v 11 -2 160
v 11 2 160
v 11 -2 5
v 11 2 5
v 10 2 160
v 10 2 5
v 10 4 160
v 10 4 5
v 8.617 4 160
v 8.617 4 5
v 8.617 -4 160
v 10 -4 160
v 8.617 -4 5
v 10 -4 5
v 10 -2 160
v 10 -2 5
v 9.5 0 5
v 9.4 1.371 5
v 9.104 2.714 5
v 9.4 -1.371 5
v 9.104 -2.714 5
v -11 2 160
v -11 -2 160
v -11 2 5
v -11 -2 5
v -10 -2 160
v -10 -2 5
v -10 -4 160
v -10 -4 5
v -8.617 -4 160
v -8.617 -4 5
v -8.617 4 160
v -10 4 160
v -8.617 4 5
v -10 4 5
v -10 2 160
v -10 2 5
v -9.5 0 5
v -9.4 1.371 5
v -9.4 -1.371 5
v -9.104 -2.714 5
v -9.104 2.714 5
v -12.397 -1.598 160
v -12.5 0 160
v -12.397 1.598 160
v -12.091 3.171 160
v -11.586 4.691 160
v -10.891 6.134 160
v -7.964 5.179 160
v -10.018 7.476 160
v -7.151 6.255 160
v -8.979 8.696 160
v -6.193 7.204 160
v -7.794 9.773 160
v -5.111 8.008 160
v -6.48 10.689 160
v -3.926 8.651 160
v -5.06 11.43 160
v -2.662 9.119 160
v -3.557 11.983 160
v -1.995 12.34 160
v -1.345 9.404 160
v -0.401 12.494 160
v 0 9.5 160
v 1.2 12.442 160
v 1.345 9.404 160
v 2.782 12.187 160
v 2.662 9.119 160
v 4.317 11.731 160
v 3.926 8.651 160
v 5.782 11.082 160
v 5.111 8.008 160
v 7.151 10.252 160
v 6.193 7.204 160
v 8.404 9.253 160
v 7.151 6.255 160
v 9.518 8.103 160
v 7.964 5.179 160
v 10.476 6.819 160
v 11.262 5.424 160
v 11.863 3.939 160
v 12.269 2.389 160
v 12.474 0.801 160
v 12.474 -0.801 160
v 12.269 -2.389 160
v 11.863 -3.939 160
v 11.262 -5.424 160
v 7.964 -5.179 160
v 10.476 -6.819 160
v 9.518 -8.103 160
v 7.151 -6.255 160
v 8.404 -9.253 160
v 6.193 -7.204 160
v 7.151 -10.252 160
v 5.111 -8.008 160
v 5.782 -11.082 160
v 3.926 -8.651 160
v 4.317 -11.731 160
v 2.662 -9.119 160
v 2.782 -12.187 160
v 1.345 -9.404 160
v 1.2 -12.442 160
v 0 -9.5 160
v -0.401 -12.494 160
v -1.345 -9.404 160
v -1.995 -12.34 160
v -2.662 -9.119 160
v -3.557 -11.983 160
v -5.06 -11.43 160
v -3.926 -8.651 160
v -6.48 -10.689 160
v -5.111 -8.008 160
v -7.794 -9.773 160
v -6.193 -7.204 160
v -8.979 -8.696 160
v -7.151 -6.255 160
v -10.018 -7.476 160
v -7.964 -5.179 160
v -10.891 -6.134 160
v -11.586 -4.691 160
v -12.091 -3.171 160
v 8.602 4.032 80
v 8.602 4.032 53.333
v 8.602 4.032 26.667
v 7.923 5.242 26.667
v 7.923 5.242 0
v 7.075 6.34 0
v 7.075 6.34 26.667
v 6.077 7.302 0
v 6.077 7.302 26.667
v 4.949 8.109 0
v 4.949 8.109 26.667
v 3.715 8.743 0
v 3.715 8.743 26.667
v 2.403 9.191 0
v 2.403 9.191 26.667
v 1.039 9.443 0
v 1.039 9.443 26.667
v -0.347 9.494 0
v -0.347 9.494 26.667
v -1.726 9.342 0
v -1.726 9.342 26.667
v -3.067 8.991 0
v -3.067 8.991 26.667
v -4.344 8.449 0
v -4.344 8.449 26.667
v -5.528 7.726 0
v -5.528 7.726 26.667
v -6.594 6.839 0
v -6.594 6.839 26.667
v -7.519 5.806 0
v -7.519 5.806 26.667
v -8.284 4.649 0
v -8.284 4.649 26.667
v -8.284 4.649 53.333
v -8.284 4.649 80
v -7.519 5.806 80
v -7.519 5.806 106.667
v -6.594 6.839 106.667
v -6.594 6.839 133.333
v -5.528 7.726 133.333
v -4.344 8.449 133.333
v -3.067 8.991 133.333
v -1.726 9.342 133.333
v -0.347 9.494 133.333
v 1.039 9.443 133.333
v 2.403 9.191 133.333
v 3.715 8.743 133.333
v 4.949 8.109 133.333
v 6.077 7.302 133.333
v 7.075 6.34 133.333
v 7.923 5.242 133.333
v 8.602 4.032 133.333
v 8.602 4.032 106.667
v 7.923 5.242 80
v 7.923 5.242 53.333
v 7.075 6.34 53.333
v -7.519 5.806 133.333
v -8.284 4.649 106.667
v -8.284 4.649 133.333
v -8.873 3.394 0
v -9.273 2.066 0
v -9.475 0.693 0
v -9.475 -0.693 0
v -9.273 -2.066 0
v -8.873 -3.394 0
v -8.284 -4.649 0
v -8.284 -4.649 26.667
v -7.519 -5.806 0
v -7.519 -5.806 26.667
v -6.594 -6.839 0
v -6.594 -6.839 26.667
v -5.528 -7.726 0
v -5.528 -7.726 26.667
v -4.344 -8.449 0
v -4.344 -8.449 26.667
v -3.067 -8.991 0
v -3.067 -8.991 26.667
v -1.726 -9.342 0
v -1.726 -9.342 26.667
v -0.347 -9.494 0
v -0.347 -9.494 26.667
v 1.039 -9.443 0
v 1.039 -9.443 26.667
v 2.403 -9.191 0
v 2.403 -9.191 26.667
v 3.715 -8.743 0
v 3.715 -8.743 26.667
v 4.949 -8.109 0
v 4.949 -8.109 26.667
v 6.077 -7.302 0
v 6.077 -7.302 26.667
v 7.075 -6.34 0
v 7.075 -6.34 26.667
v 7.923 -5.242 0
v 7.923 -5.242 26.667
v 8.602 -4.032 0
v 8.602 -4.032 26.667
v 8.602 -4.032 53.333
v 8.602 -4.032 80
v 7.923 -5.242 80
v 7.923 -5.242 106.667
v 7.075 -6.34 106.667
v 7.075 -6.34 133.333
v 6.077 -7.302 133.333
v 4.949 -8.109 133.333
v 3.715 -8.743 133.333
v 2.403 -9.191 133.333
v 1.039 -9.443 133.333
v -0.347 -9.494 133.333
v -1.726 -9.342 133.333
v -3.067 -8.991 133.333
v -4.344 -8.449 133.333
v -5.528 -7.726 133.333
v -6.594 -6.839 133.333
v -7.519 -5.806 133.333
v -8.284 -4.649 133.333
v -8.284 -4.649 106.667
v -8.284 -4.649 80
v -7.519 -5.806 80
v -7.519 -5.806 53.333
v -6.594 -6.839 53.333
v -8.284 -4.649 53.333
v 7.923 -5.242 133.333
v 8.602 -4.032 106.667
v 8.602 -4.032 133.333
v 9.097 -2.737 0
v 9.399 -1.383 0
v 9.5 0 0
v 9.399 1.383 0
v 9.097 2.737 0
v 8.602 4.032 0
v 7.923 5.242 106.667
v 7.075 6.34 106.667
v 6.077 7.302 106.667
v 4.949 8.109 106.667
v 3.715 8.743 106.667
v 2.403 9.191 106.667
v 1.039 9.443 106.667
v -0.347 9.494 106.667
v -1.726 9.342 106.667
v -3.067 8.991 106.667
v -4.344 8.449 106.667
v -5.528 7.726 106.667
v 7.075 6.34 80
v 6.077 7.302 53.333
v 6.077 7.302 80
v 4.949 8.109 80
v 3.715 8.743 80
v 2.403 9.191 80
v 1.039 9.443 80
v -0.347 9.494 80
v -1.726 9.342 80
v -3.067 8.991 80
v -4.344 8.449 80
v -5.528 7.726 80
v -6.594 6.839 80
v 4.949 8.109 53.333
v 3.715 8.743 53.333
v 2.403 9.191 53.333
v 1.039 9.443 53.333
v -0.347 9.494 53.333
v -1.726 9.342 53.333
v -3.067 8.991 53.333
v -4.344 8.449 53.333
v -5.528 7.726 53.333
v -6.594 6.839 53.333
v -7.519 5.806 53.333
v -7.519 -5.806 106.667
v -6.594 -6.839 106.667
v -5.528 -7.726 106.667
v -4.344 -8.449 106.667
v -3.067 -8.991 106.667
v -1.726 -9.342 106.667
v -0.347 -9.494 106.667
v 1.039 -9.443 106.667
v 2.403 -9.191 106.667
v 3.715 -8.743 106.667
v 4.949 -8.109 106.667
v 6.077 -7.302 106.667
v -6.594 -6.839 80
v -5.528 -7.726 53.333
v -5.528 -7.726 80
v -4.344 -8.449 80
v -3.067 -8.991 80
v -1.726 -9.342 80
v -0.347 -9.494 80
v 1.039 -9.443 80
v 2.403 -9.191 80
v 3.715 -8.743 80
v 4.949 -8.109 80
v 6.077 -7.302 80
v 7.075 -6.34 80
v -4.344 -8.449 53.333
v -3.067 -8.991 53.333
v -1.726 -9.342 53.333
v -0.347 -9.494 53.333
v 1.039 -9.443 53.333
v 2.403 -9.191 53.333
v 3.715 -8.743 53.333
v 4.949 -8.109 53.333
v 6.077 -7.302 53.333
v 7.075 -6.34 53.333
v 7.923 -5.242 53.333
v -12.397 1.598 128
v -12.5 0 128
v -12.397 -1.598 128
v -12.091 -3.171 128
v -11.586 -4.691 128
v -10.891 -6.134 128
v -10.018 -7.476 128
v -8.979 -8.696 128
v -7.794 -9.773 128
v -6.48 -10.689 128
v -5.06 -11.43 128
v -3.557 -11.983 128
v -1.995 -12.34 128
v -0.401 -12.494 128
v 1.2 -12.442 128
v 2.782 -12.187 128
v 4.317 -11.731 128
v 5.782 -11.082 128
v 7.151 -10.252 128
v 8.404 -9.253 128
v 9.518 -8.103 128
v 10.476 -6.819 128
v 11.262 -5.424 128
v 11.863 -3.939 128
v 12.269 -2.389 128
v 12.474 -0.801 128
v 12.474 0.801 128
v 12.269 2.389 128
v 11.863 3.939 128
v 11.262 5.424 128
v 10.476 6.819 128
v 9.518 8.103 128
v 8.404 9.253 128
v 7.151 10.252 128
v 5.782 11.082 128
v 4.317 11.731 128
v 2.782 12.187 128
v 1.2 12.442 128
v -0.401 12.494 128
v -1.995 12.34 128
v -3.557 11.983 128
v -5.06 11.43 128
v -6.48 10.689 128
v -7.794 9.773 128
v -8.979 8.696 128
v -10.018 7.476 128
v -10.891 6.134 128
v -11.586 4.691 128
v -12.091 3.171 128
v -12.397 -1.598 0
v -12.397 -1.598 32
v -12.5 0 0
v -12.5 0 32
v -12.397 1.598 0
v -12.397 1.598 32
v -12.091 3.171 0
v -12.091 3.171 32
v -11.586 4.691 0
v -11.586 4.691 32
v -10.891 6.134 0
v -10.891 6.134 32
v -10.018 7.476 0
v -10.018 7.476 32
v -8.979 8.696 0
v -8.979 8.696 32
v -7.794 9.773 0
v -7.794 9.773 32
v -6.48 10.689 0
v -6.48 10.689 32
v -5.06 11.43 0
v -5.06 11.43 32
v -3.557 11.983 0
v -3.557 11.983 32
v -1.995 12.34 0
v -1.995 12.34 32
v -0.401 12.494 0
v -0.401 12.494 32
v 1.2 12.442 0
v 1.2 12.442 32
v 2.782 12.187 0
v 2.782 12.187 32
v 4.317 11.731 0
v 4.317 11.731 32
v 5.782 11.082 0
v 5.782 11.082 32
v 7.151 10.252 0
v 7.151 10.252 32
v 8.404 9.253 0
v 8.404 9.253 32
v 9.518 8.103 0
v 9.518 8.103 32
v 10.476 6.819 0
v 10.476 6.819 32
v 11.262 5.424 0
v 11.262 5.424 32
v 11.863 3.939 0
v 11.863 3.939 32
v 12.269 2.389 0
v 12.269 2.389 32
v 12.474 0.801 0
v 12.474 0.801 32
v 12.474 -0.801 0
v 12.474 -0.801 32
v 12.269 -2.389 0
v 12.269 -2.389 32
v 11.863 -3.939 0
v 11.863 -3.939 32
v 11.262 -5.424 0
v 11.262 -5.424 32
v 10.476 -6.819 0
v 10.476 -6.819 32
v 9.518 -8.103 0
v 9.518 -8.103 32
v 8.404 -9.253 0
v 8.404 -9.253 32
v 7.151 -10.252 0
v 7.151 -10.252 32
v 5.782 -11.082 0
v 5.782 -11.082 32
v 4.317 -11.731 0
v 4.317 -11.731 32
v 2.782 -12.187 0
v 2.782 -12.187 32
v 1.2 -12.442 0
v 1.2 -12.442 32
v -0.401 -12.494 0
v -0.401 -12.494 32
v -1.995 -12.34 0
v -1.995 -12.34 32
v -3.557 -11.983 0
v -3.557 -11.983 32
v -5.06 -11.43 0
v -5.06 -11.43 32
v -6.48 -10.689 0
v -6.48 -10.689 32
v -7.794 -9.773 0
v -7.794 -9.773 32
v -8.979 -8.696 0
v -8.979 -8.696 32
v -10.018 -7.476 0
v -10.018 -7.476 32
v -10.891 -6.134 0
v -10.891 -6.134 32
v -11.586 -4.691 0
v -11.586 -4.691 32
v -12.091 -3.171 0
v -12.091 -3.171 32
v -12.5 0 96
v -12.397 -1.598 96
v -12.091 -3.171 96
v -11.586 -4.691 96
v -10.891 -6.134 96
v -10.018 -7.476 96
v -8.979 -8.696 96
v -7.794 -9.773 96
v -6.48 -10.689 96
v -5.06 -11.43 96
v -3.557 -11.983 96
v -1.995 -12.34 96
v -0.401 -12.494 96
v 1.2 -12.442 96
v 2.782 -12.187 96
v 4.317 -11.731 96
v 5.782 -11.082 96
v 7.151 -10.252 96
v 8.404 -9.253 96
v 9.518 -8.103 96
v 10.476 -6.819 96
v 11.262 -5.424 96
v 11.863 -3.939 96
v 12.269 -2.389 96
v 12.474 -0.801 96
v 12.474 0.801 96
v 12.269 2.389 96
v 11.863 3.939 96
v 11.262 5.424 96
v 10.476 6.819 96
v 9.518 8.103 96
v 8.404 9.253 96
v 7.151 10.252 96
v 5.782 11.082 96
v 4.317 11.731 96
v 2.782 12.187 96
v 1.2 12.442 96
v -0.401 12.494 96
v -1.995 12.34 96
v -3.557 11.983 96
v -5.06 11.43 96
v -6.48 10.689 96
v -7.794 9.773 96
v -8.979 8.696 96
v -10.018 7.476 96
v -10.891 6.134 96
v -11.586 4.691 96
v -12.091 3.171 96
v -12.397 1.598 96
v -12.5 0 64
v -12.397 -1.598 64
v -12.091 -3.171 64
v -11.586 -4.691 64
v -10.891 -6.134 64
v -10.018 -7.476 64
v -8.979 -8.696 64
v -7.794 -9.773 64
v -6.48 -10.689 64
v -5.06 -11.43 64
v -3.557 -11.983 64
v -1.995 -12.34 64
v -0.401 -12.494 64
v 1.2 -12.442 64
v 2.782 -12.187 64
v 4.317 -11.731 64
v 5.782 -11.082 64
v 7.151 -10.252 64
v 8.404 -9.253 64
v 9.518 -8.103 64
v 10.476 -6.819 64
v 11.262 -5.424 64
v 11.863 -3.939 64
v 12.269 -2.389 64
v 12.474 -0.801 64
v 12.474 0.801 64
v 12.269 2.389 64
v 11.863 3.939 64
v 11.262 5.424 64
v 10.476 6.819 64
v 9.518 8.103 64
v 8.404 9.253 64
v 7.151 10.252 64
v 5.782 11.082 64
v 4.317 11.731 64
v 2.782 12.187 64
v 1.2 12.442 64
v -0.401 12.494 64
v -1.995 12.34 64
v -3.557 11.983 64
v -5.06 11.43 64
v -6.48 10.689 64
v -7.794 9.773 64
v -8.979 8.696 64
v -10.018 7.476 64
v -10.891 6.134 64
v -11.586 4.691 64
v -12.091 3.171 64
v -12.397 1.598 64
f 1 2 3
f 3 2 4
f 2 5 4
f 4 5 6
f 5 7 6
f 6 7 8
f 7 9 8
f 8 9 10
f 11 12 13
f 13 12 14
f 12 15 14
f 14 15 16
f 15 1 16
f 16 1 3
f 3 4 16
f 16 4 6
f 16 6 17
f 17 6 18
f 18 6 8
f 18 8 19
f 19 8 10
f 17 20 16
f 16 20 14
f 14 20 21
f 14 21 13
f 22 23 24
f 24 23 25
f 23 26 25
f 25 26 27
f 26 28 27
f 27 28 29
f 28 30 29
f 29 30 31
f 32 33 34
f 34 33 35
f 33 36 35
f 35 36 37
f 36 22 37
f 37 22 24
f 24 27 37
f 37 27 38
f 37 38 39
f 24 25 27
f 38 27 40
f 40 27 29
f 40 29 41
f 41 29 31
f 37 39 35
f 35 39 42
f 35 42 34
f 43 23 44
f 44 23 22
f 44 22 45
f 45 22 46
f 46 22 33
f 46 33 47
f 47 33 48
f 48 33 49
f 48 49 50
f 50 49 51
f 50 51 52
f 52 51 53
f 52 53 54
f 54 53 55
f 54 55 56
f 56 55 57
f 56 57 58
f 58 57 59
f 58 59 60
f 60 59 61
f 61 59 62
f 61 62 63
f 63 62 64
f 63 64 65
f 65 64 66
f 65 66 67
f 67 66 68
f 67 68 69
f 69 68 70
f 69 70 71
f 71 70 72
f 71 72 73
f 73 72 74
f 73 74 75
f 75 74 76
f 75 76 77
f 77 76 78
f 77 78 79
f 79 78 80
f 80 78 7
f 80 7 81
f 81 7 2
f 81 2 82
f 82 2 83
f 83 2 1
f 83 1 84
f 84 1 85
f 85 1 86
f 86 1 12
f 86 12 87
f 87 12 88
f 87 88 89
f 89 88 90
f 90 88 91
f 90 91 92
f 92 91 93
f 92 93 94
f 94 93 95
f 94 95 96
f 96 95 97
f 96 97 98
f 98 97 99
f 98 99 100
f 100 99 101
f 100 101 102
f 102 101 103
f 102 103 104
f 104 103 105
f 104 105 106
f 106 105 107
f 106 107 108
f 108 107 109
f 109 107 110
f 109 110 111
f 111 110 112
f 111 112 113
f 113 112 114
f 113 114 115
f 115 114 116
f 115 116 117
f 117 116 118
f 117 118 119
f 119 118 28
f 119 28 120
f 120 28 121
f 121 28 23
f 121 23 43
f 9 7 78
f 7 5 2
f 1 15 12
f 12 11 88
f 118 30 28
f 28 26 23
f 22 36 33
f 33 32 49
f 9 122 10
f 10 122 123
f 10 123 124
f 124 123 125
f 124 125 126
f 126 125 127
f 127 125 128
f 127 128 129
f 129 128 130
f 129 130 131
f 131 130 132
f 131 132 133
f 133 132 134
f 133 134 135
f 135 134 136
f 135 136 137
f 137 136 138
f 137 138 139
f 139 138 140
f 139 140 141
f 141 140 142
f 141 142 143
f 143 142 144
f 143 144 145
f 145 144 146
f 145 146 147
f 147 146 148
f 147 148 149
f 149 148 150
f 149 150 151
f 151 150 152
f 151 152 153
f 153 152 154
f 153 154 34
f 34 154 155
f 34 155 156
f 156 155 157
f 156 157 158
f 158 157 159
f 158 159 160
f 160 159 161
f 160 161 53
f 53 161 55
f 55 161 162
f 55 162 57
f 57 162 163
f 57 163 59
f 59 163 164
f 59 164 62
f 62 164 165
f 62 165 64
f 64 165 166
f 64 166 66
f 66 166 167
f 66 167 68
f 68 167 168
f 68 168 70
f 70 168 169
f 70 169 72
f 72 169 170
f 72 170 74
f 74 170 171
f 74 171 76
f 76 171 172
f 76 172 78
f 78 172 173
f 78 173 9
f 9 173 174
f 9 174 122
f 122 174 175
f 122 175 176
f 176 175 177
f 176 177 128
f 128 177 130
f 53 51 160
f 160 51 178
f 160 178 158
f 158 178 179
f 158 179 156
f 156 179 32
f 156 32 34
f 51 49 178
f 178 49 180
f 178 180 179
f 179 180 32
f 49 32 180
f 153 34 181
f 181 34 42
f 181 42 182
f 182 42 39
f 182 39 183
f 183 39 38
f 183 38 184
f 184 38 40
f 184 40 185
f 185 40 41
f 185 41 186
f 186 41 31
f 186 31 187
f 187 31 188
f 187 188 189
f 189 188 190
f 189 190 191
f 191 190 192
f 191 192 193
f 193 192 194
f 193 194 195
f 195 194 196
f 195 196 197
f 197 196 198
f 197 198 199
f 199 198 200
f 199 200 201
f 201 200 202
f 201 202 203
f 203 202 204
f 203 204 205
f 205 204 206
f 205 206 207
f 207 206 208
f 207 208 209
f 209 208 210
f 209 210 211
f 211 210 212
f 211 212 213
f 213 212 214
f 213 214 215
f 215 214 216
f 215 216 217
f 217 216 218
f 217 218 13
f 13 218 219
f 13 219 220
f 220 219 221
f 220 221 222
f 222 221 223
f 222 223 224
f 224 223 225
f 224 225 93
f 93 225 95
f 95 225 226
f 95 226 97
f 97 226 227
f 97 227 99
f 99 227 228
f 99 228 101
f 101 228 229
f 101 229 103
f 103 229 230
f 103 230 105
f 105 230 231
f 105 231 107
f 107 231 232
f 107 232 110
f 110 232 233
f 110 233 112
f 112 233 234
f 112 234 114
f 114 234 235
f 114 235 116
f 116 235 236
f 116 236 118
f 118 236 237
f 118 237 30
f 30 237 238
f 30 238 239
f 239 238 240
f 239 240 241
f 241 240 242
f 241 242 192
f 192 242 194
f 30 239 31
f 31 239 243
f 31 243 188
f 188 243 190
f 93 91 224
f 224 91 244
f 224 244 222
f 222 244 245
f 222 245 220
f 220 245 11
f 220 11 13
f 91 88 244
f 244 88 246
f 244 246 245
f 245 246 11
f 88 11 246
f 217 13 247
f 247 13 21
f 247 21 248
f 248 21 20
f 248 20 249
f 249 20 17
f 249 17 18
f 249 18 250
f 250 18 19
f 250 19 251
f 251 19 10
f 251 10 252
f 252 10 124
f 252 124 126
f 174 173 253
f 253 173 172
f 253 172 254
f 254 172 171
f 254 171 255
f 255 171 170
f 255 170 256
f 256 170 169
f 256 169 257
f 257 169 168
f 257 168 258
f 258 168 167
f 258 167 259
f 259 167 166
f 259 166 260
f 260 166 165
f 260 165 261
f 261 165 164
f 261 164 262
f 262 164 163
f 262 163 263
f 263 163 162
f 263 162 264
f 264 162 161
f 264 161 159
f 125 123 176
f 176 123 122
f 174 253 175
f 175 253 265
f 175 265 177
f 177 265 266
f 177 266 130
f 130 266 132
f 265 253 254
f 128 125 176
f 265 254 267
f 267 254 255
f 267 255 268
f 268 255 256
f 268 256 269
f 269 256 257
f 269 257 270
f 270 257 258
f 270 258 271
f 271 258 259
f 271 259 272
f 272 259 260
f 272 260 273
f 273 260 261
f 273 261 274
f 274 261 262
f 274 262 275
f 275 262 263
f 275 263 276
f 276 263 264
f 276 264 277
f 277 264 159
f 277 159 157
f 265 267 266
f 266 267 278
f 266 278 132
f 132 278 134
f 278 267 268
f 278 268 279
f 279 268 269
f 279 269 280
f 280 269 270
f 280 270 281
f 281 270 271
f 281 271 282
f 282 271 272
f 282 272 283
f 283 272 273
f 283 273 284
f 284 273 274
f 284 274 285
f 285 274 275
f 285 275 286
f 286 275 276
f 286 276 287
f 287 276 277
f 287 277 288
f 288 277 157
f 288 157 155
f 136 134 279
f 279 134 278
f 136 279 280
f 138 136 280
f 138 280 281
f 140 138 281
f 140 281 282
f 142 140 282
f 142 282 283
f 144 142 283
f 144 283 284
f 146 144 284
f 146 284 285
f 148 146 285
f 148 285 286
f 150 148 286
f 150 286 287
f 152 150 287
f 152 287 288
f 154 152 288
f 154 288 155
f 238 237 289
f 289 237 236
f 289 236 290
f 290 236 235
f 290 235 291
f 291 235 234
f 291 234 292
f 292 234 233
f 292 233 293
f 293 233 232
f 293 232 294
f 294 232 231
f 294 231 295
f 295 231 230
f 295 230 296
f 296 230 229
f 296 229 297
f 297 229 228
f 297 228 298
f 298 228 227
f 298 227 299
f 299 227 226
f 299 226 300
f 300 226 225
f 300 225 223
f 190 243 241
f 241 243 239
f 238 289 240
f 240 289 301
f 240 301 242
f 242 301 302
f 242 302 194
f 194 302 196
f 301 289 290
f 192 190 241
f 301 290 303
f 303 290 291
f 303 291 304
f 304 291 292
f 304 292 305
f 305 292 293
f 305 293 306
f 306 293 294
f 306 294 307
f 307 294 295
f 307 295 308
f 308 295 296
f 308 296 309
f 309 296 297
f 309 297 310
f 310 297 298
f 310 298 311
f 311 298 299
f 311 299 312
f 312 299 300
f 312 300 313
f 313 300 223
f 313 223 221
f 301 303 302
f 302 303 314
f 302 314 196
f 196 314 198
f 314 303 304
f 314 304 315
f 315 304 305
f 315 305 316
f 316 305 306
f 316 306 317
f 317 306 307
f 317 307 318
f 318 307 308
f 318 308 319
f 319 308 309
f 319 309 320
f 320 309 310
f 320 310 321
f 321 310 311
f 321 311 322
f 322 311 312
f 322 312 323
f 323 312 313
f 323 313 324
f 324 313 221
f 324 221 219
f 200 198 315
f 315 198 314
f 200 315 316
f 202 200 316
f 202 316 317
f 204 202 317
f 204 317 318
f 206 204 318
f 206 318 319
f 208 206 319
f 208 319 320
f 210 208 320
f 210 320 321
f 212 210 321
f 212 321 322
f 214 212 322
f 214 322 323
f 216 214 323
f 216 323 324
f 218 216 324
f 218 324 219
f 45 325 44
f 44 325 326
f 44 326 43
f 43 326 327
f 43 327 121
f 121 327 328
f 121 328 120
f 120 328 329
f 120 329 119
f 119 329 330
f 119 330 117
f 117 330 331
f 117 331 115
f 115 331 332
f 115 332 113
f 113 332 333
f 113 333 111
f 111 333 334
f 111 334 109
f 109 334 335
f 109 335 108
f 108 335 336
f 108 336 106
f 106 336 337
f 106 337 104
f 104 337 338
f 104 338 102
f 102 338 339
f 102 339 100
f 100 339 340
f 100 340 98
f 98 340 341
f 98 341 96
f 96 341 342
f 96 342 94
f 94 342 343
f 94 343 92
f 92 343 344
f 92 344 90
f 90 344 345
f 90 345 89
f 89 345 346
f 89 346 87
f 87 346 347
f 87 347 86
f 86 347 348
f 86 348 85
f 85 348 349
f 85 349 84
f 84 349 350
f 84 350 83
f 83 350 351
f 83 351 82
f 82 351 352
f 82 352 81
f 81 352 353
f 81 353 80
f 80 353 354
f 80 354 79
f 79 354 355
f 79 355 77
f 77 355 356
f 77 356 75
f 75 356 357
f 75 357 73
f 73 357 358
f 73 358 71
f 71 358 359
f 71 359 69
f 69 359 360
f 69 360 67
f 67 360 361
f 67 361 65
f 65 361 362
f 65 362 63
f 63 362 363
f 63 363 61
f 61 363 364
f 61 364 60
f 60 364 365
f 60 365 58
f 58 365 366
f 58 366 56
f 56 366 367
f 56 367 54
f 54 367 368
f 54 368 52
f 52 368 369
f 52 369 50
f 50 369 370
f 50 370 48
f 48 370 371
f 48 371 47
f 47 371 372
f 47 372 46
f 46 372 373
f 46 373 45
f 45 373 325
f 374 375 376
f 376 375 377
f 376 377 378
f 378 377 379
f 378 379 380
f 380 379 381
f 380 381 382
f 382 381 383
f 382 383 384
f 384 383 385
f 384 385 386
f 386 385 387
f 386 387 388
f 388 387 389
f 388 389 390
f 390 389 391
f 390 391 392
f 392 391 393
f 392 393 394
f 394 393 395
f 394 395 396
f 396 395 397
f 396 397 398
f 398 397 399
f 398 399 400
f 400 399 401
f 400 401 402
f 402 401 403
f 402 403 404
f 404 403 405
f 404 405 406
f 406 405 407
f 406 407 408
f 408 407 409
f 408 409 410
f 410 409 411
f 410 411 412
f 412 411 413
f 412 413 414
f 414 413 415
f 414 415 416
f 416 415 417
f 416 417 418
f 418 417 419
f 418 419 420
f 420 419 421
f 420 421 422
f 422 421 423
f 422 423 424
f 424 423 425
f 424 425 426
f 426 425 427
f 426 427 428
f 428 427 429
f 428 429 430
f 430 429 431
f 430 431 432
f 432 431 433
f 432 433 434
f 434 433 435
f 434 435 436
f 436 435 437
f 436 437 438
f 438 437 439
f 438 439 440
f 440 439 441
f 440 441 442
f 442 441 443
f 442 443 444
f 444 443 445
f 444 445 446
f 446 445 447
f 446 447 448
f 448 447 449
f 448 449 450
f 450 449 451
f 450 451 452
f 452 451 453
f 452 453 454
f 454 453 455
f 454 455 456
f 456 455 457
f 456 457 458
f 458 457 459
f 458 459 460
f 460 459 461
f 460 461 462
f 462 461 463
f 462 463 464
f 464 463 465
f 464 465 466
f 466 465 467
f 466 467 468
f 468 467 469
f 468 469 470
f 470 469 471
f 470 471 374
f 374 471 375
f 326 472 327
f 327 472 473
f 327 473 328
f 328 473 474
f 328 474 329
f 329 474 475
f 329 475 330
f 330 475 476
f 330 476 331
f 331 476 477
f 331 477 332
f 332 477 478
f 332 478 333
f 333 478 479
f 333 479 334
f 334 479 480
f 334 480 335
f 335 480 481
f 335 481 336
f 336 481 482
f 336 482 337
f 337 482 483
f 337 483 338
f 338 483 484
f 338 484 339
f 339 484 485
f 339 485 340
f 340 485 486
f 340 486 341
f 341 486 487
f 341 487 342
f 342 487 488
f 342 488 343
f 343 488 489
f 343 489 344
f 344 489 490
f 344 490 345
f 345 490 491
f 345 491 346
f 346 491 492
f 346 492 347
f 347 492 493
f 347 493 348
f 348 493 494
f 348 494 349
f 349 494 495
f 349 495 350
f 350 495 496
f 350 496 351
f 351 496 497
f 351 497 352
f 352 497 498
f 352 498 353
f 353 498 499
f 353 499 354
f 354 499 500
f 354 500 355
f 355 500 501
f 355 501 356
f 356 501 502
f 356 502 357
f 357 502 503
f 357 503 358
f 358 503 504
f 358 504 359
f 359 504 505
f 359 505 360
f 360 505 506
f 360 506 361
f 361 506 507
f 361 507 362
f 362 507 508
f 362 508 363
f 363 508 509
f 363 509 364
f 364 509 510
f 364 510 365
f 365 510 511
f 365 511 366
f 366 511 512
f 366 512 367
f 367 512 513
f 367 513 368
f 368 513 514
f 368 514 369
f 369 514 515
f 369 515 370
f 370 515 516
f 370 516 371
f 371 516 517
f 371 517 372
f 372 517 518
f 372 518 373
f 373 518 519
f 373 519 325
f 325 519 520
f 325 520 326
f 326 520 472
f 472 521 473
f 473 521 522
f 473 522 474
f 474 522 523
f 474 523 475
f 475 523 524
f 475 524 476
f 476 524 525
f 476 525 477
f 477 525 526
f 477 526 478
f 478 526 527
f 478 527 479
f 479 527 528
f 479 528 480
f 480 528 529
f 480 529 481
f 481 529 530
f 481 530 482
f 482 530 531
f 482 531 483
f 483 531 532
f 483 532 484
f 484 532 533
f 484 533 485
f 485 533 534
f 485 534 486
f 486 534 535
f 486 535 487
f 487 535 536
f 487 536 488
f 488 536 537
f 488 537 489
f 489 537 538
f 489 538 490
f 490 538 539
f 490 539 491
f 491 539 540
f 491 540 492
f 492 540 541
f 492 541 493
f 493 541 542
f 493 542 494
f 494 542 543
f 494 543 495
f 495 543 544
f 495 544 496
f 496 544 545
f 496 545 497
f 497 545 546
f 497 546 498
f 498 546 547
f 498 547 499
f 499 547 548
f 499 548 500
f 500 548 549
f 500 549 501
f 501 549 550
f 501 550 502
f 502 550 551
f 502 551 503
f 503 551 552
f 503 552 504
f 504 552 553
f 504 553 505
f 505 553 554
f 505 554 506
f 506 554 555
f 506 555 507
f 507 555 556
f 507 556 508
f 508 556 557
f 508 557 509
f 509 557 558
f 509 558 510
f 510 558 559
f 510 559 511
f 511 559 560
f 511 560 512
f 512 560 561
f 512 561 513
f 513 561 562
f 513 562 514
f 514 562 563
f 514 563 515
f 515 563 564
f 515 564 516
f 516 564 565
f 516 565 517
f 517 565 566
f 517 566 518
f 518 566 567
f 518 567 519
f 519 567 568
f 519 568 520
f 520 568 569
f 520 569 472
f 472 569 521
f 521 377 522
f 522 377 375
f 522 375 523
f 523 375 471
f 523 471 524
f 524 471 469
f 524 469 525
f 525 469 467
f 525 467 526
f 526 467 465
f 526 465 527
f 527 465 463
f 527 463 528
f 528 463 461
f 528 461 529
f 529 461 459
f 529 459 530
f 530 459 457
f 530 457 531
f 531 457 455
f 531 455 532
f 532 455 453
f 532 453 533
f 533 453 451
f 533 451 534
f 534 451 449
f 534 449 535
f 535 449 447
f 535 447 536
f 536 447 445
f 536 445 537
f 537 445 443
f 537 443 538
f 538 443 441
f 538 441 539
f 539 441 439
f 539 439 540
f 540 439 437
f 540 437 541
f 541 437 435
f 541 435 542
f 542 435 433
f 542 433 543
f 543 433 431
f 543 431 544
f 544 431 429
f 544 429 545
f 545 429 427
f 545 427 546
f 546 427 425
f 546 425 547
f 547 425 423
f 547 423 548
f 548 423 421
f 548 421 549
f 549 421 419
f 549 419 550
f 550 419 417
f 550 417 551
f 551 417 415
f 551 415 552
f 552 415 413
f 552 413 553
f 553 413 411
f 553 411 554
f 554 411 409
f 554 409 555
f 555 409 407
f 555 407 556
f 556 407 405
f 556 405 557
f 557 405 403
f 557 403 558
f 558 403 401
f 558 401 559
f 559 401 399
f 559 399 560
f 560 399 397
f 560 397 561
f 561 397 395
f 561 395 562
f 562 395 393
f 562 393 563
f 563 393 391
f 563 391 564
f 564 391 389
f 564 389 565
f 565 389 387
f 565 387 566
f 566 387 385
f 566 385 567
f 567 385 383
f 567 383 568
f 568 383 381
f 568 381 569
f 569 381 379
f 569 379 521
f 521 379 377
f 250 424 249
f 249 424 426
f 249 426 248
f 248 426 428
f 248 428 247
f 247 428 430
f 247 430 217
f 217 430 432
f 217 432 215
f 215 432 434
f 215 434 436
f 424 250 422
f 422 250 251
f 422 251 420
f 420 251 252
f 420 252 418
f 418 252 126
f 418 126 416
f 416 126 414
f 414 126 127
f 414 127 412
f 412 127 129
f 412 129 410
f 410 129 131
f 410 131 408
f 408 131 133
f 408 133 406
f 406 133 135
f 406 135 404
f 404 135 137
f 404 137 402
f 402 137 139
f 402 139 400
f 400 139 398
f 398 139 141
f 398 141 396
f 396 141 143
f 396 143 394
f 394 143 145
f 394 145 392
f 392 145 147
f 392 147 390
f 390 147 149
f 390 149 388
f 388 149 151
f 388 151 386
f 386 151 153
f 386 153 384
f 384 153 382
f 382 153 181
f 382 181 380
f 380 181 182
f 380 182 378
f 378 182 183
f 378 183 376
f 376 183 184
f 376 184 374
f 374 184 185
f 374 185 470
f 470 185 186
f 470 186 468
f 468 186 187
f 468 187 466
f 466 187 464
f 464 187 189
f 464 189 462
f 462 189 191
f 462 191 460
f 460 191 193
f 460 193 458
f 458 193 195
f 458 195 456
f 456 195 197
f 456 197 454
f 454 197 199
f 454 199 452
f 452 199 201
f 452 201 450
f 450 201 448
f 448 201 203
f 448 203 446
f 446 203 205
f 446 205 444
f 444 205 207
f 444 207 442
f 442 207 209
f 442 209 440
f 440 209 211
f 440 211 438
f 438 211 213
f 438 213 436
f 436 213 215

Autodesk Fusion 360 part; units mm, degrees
sketch "Sketch1" plane through (0, 0, 0) normal (0, 0, 1) x (1, 0, 0)
  circle A0 centre (0, 0) radius 12.5
  dimension "d1" = 25
extrude "Extrude1" add sketch "Sketch1" along normal blind 160
sketch "Sketch3" plane through (0, 0, 160) normal (0, 0, 1) x (-1, 0, 0)
  circle A0 centre (0, 0) radius 12.5
  circle A1 centre (0, 0) radius 9.5
  dimension "d4" = 19
extrude "Extrude2" cut sketch "Sketch3" against normal blind 1000 contours A1
sketch "Sketch4" plane through (0, 0, 160) normal (0, 0, -1) x (1, 0, 0)
  circle A0 centre (0, -30) radius 12.5
  circle A1 centre (0, -30) radius 9.25
  dimension "d12" = 18.5
sketch "Sketch7" plane through (0, 0, 171) normal (0, 0, 1) x (-1, 0, 0)
  circle A0 centre (30, 0) radius 6.2204
  circle A1 centre (30, 0) radius 5
sketch "Sketch8" plane through (0, 0, 171) normal (0, 0, 1) x (-1, 0, 0)
  circle A0 centre (30, 0) radius 5
  circle A1 centre (30, 0) radius 6.2204
  line L0 (26, -15) -> (14, -15)
  circle A2 centre (20, -15) radius 6
  line L1 (26, -20) -> (21, -20)
  line L2 (21, -10) -> (26, -10)
  line L3 (26, -10) -> (26, -20)
sketch "Sketch9" plane through (-26, 0, 0) normal (-1, 0, 0) x (0, -1, 0)
  circle A0 centre (-15, 171) radius 5
sketch "Sketch10" plane through (-26, 0, 0) normal (-1, 0, 0) x (0, -1, 0)
  circle A0 centre (-15, 171) radius 4
sketch "Sketch11" plane through (0, 0, 160) normal (0, 0, 1) x (-1, 0, 0)
  circle A0 centre (0, 0) radius 9.5
  circle A1 centre (0, 0) radius 12.5
  line L0 (11, 2) -> (-11, 2)
  line L1 (-11, 2) -> (-11, -2)
  line L2 (-11, -2) -> (11, -2)
  line L3 (11, -2) -> (11, 2)
  line L4 (10, -4) -> (-10, -4)
  line L5 (-10, -4) -> (-10, 4)
  line L6 (-10, 4) -> (10, 4)
  line L7 (10, 4) -> (10, -4)
extrude "Extrude7" cut sketch "Sketch11" against normal blind 155 contours A0 L0 L2 L7 | A0 L0 L6 L7 | A0 L2 L4 L7 | L0 L2 L3 L7 | A0 L0 L5 L6 | A0 L0 L2 L5 | A0 L2 L4 L5 | L0 L1 L2 L5
sketch "Sketch12" plane through (0, 0, 160) normal (0, 0, 1) x (-1, 0, 0)
  line L0 (11, -2) -> (10, -2)
  arc A0 (8.6168, 4) -> (-8.6168, 4) centre (0, 0) ccw
  line L1 (-10, -2) -> (-11, -2)
  line L2 (-11, -2) -> (-11, 2)
  line L3 (-11, 2) -> (-10, 2)
  line L4 (10, 2) -> (11, 2)
  line L5 (11, 2) -> (11, -2)
  circle A1 centre (0, 0) radius 12.5
  line L6 (10.9, -1.9) -> (-10.9, -1.9)
  line L7 (-10.9, -1.9) -> (-10.9, 1.9)
  line L8 (-10.9, 1.9) -> (10.9, 1.9)
  line L9 (10.9, 1.9) -> (10.9, -1.9)
  line L10 (10, -3) -> (-10, -3)
  line L11 (-10, -3) -> (-10, 3)
  line L12 (-10, 3) -> (10, 3)
  line L13 (10, 3) -> (10, -3)
  line L14 (-8.6168, -4) -> (-10, -4)
  line L15 (-10, -4) -> (-10, -2)
  line L16 (-10, 2) -> (-10, 4)
  line L17 (-10, 4) -> (-8.6168, 4)
  line L18 (8.6168, 4) -> (10, 4)
  line L19 (10, 4) -> (10, 2)
  line L20 (10, -2) -> (10, -4)
  line L21 (10, -4) -> (8.6168, -4)
  arc A2 (-8.6168, -4) -> (8.6168, -4) centre (0, 0) ccw
sketch "Sketch13" plane through (0, -1.9, 0) normal (0, -1, 0) x (1, 0, 0)
  line L0 (37.9, 160) -> (16.1, 160)
  line L1 (16.1, 160) -> (16.1, 0)
  line L2 (16.1, 0) -> (37.9, 0)
  line L3 (37.9, 0) -> (37.9, 160)
  line L4 (18, 158) -> (36, 158)
  line L5 (36, 158) -> (36, 16)
  line L6 (36, 16) -> (18, 16)
  line L7 (18, 16) -> (18, 158)
sketch "Sketch14" plane through (0, -1.9, 0) normal (0, -1, 0) x (1, 0, 0)
  line L0 (16, 0) -> (19.1, 0)
  line L1 (19.1, 0) -> (19.1, 5.1)
  line L2 (19.1, 5.1) -> (16, 5.1)
  line L3 (16, 5.1) -> (16, 0)
  line L4 (38, 0) -> (34.9, 0)
  line L5 (34.9, 0) -> (34.9, 5.1)
  line L6 (34.9, 5.1) -> (38, 5.1)
  line L7 (38, 5.1) -> (38, 0)
sketch "Sketch15" plane through (0, 0, 0) normal (0, 0, -1) x (1, 0, 0)
  line L0 (19.1, 1.9) -> (19.1, -1.9)
  line L1 (19.1, -1.9) -> (34.9, -1.9)
  line L2 (34.9, -1.9) -> (34.9, 1.9)
  line L3 (34.9, 1.9) -> (19.1, 1.9)
  circle A0 centre (27, 0) radius 7.9
  circle A1 centre (27, 0) radius 7.6941
